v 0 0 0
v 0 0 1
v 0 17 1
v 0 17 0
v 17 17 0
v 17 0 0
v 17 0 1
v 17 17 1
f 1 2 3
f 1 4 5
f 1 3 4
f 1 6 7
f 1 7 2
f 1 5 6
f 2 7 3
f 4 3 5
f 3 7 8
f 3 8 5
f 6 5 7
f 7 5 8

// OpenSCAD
/* Warning, this is a very basic generator with a lot of approximation 
input data : [PBGA, 3EC, 17x17mm, 256, , A, C04-25024A]
generated by com.zoubworld.electronics.cad.model3d.Basic
Date : Sun Feb 15 10:50:49 CET 2026
*/

//body
color("black")
translate([0,0,0])
cube([17.0,17.0,1.0], center=false);
